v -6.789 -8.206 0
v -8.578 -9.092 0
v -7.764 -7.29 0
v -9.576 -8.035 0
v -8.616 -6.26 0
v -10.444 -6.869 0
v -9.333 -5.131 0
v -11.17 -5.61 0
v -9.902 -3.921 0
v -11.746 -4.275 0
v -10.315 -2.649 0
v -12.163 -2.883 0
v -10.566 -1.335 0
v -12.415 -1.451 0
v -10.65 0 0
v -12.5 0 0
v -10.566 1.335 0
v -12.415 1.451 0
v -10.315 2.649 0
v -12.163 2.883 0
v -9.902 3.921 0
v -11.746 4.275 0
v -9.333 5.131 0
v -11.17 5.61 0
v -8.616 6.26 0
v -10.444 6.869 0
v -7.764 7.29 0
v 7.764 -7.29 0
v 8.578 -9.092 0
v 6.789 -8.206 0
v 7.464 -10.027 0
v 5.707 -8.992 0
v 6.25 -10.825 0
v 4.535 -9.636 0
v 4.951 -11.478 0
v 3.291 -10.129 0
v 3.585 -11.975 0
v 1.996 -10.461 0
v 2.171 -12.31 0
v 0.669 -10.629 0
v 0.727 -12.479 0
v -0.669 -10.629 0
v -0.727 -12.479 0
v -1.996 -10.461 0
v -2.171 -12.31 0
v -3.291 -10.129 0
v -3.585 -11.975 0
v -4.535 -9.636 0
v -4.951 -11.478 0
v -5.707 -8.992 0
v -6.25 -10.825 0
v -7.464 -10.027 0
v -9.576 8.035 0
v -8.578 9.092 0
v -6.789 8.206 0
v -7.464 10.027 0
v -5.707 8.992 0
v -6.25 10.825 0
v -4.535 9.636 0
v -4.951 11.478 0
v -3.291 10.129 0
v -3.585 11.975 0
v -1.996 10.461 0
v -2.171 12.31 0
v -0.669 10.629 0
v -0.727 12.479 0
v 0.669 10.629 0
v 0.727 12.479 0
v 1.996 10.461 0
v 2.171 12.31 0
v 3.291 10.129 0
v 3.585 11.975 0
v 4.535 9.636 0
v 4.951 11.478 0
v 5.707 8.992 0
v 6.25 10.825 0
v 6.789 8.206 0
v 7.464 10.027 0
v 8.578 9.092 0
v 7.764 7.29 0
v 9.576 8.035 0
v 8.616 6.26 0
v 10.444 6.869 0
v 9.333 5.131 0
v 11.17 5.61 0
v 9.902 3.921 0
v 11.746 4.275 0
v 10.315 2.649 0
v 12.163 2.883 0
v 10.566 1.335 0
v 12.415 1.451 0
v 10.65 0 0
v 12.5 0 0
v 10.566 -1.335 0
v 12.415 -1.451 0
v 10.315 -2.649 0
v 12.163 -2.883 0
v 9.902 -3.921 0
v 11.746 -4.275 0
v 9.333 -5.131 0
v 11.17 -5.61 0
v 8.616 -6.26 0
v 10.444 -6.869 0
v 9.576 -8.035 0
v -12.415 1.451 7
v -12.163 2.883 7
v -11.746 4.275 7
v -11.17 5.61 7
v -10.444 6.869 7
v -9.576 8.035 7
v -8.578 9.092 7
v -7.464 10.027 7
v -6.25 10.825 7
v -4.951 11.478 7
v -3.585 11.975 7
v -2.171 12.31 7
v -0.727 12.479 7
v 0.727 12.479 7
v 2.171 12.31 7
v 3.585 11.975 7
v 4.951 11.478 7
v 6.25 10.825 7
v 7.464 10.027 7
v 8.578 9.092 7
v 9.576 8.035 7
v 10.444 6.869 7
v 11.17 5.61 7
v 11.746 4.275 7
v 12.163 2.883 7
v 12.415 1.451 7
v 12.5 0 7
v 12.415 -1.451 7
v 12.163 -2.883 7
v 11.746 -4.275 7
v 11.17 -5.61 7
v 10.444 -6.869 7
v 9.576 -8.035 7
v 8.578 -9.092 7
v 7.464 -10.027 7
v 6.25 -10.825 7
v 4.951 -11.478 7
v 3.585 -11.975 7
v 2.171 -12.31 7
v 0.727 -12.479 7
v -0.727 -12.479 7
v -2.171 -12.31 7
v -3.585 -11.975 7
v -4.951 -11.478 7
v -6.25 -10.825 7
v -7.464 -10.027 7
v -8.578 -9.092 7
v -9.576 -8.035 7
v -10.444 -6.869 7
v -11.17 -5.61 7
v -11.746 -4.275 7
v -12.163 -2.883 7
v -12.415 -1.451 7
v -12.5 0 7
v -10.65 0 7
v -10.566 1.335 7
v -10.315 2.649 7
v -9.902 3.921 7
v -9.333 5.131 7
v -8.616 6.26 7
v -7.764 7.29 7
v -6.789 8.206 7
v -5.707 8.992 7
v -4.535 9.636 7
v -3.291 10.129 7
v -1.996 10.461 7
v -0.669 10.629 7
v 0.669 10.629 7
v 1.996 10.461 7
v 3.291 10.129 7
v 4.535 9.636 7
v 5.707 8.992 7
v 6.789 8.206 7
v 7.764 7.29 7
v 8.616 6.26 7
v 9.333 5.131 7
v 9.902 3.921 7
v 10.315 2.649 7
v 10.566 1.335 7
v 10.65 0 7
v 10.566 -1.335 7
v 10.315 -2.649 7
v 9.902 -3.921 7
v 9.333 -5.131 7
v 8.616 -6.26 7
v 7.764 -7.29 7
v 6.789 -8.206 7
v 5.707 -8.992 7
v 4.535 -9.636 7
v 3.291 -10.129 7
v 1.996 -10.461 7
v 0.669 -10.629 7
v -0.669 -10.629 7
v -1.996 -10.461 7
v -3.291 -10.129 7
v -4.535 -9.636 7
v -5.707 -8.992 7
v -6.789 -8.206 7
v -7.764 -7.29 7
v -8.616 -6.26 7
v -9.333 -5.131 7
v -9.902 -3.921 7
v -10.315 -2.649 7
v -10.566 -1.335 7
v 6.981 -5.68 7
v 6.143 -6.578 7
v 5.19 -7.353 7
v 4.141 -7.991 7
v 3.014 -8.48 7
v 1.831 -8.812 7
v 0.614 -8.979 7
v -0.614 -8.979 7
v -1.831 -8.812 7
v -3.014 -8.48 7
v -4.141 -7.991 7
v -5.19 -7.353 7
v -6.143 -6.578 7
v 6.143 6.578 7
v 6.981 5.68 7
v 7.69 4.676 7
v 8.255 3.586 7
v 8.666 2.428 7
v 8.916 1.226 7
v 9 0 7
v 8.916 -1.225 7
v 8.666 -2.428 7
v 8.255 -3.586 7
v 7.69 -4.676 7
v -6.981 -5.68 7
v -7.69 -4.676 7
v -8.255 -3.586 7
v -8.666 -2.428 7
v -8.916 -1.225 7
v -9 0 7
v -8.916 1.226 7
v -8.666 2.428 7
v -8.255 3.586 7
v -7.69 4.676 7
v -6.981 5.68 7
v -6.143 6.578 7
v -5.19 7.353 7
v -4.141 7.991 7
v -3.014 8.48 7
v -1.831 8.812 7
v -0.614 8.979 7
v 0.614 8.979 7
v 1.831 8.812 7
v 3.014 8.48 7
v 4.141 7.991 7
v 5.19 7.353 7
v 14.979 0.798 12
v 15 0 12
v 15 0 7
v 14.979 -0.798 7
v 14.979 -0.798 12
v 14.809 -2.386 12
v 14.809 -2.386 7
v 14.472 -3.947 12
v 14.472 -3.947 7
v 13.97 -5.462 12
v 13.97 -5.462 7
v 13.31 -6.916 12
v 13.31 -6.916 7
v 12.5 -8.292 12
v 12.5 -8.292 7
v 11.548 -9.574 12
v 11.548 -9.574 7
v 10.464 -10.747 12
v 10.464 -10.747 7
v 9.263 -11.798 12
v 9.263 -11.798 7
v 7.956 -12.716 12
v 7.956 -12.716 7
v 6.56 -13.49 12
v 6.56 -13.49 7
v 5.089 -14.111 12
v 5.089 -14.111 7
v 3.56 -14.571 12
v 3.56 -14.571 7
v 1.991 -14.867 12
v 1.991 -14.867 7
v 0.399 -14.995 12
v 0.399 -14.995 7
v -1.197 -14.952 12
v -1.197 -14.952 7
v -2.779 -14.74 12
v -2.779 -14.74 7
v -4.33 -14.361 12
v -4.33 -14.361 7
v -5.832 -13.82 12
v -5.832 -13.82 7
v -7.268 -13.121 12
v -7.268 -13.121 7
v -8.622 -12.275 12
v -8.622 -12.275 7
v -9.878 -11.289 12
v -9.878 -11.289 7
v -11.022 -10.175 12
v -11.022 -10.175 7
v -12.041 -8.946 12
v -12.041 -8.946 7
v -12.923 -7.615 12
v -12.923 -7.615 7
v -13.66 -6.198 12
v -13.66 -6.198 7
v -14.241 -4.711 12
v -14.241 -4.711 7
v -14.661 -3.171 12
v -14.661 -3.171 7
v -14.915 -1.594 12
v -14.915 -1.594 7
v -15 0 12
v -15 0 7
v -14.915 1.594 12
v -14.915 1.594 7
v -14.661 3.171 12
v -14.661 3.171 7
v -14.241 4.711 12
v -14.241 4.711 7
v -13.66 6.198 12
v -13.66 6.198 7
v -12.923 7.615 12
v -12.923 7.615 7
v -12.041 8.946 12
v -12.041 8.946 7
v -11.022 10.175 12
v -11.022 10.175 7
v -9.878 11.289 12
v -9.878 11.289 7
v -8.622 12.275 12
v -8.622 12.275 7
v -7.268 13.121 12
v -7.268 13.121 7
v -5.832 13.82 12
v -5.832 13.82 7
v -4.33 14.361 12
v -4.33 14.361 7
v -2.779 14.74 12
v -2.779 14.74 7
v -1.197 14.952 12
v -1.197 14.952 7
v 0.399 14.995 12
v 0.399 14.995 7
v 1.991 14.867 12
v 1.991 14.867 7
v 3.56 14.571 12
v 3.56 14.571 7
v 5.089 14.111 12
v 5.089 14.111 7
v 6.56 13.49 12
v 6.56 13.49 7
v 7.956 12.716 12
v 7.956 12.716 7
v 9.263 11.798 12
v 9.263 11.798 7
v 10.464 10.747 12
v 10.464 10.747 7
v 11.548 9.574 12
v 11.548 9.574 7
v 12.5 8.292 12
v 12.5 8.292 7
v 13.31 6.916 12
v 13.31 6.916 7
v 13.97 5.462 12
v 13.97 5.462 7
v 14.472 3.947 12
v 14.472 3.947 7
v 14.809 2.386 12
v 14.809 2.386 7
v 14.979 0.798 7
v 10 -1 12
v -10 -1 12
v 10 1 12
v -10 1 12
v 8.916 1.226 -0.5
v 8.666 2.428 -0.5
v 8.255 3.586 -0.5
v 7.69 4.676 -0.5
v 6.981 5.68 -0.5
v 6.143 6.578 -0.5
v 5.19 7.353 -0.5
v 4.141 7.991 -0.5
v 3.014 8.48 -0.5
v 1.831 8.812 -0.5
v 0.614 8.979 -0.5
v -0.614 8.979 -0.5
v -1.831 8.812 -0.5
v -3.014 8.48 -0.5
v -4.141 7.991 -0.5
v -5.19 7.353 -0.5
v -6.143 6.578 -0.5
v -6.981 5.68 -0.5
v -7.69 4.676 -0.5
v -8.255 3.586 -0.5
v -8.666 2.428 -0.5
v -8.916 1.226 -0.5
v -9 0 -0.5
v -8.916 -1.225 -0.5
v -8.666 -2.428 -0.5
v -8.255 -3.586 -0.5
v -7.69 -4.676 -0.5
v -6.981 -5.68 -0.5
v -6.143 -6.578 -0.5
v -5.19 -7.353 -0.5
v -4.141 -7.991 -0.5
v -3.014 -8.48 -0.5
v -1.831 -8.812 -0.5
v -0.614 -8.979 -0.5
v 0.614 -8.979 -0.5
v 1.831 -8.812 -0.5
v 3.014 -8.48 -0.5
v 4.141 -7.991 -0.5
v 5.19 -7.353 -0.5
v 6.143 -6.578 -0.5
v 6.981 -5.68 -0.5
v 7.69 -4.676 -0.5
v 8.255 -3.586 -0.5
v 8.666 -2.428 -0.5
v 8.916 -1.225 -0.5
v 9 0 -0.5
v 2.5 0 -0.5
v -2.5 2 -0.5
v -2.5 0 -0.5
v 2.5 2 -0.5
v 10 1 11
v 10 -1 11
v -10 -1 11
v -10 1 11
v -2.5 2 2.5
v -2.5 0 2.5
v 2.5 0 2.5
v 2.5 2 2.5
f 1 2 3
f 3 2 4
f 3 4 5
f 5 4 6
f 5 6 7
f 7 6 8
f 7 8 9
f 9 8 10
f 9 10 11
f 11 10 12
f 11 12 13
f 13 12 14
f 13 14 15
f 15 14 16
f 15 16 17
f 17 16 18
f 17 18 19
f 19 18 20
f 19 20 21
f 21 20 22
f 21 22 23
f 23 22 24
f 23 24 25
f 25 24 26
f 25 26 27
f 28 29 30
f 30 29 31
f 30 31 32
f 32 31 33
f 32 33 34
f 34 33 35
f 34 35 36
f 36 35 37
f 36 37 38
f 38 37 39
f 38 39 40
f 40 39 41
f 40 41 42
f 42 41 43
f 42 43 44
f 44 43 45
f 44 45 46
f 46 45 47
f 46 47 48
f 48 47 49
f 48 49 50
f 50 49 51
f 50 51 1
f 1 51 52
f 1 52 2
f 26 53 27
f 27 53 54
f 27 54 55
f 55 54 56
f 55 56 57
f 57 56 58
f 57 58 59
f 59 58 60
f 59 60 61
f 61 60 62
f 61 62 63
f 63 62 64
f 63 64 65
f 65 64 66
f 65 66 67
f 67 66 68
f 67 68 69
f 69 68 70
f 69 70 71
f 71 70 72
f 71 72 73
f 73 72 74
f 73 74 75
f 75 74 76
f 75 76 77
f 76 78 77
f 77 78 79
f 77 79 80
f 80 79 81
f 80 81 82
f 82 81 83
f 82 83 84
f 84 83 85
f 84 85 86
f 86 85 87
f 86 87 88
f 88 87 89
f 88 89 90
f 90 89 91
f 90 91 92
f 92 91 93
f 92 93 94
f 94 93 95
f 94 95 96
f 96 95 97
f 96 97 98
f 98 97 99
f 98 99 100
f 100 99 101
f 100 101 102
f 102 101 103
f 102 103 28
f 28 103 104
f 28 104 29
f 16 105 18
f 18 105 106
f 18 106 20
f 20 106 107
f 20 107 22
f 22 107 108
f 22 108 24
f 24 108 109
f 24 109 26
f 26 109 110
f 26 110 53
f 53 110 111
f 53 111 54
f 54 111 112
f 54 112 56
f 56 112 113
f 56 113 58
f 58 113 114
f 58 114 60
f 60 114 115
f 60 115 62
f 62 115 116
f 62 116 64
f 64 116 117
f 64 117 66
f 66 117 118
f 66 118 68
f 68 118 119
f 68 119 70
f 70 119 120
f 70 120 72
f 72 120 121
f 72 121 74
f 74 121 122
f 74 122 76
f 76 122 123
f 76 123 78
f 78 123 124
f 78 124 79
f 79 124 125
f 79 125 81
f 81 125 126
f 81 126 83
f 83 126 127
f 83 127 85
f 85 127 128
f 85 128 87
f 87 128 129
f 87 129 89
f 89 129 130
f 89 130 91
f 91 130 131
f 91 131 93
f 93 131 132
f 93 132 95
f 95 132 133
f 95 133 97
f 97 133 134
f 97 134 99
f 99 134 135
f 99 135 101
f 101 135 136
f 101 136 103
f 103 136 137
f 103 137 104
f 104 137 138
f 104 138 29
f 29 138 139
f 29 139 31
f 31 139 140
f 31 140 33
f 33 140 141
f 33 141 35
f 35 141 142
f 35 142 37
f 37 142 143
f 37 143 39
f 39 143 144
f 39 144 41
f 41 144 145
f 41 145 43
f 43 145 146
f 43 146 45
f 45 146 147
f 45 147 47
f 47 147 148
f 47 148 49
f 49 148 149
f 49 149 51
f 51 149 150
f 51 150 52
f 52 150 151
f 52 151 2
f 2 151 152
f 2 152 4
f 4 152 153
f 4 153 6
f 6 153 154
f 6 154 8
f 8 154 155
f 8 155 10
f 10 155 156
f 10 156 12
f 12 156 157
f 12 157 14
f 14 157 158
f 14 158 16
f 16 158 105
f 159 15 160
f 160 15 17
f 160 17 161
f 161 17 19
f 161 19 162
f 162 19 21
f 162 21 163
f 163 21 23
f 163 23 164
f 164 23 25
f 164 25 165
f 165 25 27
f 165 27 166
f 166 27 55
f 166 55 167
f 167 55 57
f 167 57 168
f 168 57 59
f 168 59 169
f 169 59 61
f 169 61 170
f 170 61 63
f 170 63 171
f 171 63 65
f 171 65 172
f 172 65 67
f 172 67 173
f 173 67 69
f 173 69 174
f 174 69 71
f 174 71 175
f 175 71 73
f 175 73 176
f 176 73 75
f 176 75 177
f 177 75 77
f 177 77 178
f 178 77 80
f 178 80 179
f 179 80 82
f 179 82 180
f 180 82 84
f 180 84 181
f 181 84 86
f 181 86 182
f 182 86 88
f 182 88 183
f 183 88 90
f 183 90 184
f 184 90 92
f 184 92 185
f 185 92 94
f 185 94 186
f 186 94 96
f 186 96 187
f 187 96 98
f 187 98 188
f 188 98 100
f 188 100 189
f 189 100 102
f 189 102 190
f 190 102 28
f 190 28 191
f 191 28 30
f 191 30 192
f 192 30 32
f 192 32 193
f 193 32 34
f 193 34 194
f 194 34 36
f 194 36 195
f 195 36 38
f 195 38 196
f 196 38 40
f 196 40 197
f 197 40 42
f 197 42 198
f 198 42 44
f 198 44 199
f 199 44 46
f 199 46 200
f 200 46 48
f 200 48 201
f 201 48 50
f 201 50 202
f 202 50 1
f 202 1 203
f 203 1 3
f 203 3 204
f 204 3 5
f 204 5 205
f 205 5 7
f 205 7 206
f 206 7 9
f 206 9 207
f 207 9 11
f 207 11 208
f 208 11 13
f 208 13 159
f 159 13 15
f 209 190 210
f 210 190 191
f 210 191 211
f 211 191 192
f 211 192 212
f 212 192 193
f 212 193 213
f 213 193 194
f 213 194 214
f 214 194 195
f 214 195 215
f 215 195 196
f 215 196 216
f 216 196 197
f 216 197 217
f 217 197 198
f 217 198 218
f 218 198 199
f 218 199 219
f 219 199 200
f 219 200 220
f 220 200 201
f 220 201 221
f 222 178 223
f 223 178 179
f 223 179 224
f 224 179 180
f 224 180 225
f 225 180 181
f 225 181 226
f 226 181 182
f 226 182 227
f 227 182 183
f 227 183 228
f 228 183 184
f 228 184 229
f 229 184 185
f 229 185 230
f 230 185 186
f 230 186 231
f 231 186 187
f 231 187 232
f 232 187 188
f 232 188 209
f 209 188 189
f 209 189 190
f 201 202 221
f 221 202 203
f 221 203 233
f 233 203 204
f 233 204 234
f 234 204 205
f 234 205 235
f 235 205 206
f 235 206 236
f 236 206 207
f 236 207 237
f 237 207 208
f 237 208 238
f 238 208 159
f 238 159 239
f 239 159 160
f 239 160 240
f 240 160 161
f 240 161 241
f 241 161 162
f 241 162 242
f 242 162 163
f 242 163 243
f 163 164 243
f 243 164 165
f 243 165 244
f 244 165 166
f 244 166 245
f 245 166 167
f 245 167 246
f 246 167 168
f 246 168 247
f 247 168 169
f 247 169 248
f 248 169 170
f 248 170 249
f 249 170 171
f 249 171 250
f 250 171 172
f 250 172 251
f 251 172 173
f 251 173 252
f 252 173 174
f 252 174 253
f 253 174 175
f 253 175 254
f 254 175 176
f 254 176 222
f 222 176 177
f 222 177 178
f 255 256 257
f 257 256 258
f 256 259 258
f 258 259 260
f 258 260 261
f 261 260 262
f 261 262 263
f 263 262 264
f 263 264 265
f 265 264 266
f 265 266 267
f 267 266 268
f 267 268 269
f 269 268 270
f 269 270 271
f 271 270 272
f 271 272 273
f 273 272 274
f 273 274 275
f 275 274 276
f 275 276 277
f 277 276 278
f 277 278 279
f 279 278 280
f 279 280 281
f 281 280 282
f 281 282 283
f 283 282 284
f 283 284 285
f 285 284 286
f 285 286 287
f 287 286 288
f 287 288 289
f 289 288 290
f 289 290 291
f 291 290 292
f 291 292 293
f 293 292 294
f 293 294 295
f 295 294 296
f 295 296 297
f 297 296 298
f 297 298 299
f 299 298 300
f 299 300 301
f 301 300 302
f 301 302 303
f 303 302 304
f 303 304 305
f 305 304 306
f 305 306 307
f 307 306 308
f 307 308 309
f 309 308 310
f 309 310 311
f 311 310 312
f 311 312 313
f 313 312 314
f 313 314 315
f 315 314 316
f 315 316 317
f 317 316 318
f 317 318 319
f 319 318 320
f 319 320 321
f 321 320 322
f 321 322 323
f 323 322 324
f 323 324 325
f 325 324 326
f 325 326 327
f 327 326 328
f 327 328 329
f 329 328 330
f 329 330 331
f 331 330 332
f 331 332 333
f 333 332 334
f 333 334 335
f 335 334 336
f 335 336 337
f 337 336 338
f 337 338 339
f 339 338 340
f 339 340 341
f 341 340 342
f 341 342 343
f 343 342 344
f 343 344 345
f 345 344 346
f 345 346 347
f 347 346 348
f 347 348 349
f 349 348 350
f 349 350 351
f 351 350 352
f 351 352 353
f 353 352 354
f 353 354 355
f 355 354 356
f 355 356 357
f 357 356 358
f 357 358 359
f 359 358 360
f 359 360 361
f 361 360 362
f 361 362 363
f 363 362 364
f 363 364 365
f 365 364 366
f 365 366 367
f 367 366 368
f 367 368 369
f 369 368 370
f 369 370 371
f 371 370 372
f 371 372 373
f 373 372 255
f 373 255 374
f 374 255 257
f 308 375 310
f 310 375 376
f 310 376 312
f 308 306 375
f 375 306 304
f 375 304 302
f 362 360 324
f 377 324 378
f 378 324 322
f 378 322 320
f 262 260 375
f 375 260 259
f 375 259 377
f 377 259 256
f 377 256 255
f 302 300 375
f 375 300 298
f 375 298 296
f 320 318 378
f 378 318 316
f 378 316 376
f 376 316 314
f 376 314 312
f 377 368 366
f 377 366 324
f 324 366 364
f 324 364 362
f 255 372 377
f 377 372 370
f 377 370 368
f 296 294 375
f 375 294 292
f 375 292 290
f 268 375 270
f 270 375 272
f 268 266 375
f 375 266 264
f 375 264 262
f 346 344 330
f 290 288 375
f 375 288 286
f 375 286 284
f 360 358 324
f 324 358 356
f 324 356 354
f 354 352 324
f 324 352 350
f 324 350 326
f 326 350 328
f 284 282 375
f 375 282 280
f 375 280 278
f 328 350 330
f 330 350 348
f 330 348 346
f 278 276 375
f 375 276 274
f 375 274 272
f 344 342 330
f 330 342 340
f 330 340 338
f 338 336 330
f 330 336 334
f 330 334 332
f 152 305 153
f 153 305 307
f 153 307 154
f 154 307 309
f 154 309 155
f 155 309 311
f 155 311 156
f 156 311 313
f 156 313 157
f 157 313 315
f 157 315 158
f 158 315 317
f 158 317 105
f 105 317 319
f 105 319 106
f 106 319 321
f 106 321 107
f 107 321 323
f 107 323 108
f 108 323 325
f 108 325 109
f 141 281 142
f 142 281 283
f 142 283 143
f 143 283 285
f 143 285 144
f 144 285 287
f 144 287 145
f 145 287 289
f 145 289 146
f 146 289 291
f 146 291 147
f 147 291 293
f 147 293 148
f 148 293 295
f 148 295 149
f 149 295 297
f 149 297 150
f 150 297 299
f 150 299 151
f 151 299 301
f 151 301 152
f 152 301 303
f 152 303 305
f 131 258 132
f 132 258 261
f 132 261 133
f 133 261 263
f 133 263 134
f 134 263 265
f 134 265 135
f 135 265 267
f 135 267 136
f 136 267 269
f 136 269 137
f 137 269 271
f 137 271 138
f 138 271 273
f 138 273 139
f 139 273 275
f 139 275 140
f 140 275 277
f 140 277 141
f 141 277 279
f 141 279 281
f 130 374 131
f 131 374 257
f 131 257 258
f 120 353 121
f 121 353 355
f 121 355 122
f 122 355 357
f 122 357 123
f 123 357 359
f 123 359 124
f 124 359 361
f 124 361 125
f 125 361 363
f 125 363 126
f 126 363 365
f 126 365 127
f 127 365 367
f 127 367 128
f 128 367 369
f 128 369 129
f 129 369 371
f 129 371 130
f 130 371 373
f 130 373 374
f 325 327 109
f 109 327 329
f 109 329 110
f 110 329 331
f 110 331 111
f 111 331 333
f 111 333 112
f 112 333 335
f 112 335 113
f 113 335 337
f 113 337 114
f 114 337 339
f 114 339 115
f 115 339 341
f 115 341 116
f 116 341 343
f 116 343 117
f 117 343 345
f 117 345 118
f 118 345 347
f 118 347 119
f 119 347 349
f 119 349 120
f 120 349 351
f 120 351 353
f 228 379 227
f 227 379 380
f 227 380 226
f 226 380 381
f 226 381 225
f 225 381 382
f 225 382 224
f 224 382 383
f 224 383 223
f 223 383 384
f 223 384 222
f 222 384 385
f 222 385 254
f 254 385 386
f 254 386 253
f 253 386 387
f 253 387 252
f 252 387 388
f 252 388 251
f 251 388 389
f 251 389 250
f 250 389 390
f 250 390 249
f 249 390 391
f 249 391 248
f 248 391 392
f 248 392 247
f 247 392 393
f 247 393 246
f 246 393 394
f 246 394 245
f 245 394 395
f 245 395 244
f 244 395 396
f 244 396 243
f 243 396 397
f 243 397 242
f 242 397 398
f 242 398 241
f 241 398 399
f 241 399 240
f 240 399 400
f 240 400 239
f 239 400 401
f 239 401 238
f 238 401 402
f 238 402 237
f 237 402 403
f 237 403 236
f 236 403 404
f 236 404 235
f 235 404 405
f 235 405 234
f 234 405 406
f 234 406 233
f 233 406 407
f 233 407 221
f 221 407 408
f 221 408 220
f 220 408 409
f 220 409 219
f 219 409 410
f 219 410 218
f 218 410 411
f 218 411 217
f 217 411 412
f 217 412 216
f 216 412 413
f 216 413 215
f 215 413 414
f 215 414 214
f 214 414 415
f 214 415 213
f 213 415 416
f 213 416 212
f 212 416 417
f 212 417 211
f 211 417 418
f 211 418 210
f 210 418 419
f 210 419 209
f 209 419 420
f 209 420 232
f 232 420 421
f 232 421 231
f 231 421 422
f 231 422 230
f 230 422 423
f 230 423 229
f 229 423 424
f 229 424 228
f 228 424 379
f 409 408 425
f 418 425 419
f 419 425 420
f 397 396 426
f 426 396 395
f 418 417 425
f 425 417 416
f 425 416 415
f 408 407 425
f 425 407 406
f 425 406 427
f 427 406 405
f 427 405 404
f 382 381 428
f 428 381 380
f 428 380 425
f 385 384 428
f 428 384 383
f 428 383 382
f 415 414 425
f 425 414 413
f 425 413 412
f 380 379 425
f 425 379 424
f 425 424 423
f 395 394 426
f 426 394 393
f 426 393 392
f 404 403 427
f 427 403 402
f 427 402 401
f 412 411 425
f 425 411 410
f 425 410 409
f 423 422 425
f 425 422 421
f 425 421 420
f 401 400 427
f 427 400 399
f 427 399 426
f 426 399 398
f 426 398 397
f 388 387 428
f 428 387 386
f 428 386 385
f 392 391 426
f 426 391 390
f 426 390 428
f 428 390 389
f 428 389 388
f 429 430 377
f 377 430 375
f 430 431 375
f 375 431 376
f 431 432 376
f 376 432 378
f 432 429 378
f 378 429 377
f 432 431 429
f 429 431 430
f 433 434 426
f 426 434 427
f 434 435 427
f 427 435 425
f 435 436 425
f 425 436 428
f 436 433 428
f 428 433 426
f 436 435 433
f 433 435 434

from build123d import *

# Parameters (mm, degrees)
SKETCH_1_R          = 12.5
SKETCH_1_R_2        = 10.65
EXTRUDE_1_DEPTH     = 7
SKETCH_2_R          = 15
EXTRUDE_2_DEPTH     = 5
SKETCH_4_R          = 9
EXTRUDE_3_DEPTH     = 7.5
SKETCH_5_W          = 20
SKETCH_5_H          = 2
CUT_EXTRUDE_1_DEPTH = 1
SKETCH_6_W          = 5
SKETCH_6_H          = 2
CUT_EXTRUDE_2_DEPTH = 3


with BuildPart() as part:
    # 스케치1 → 보스-돌출1 (new body)
    with BuildSketch(Plane.XY):
        Circle(SKETCH_1_R)
        Circle(SKETCH_1_R_2, mode=Mode.SUBTRACT)
    extrude(amount=EXTRUDE_1_DEPTH)

    # 스케치2 → 보스-돌출2 (add)
    with BuildSketch(Plane.XY.offset(7)):
        Circle(SKETCH_2_R)
    extrude(amount=EXTRUDE_2_DEPTH)

    # 스케치4 → 보스-돌출3 (add)
    with BuildSketch(Plane(origin=(0, 0, 7), x_dir=(-1, 0, 0), z_dir=(0, 0, -1))):
        with Locations(Location((0, 0, 0), (0, 0, 180))):
            Circle(SKETCH_4_R)
    extrude(amount=EXTRUDE_3_DEPTH)

    # 스케치5 → 컷-돌출1 (cut)
    with BuildSketch(Plane.XY.offset(12)):
        Rectangle(SKETCH_5_W, SKETCH_5_H)
    extrude(amount=-CUT_EXTRUDE_1_DEPTH, mode=Mode.SUBTRACT)

    # 스케치6 → 컷-돌출2 (cut)
    with BuildSketch(Plane(origin=(0, 0, -0.5), x_dir=(-1, 0, 0), z_dir=(0, 0, -1))):
        with Locations((0, 1)):
            Rectangle(SKETCH_6_W, SKETCH_6_H)
    extrude(amount=-CUT_EXTRUDE_2_DEPTH, mode=Mode.SUBTRACT)


solid = part.part
